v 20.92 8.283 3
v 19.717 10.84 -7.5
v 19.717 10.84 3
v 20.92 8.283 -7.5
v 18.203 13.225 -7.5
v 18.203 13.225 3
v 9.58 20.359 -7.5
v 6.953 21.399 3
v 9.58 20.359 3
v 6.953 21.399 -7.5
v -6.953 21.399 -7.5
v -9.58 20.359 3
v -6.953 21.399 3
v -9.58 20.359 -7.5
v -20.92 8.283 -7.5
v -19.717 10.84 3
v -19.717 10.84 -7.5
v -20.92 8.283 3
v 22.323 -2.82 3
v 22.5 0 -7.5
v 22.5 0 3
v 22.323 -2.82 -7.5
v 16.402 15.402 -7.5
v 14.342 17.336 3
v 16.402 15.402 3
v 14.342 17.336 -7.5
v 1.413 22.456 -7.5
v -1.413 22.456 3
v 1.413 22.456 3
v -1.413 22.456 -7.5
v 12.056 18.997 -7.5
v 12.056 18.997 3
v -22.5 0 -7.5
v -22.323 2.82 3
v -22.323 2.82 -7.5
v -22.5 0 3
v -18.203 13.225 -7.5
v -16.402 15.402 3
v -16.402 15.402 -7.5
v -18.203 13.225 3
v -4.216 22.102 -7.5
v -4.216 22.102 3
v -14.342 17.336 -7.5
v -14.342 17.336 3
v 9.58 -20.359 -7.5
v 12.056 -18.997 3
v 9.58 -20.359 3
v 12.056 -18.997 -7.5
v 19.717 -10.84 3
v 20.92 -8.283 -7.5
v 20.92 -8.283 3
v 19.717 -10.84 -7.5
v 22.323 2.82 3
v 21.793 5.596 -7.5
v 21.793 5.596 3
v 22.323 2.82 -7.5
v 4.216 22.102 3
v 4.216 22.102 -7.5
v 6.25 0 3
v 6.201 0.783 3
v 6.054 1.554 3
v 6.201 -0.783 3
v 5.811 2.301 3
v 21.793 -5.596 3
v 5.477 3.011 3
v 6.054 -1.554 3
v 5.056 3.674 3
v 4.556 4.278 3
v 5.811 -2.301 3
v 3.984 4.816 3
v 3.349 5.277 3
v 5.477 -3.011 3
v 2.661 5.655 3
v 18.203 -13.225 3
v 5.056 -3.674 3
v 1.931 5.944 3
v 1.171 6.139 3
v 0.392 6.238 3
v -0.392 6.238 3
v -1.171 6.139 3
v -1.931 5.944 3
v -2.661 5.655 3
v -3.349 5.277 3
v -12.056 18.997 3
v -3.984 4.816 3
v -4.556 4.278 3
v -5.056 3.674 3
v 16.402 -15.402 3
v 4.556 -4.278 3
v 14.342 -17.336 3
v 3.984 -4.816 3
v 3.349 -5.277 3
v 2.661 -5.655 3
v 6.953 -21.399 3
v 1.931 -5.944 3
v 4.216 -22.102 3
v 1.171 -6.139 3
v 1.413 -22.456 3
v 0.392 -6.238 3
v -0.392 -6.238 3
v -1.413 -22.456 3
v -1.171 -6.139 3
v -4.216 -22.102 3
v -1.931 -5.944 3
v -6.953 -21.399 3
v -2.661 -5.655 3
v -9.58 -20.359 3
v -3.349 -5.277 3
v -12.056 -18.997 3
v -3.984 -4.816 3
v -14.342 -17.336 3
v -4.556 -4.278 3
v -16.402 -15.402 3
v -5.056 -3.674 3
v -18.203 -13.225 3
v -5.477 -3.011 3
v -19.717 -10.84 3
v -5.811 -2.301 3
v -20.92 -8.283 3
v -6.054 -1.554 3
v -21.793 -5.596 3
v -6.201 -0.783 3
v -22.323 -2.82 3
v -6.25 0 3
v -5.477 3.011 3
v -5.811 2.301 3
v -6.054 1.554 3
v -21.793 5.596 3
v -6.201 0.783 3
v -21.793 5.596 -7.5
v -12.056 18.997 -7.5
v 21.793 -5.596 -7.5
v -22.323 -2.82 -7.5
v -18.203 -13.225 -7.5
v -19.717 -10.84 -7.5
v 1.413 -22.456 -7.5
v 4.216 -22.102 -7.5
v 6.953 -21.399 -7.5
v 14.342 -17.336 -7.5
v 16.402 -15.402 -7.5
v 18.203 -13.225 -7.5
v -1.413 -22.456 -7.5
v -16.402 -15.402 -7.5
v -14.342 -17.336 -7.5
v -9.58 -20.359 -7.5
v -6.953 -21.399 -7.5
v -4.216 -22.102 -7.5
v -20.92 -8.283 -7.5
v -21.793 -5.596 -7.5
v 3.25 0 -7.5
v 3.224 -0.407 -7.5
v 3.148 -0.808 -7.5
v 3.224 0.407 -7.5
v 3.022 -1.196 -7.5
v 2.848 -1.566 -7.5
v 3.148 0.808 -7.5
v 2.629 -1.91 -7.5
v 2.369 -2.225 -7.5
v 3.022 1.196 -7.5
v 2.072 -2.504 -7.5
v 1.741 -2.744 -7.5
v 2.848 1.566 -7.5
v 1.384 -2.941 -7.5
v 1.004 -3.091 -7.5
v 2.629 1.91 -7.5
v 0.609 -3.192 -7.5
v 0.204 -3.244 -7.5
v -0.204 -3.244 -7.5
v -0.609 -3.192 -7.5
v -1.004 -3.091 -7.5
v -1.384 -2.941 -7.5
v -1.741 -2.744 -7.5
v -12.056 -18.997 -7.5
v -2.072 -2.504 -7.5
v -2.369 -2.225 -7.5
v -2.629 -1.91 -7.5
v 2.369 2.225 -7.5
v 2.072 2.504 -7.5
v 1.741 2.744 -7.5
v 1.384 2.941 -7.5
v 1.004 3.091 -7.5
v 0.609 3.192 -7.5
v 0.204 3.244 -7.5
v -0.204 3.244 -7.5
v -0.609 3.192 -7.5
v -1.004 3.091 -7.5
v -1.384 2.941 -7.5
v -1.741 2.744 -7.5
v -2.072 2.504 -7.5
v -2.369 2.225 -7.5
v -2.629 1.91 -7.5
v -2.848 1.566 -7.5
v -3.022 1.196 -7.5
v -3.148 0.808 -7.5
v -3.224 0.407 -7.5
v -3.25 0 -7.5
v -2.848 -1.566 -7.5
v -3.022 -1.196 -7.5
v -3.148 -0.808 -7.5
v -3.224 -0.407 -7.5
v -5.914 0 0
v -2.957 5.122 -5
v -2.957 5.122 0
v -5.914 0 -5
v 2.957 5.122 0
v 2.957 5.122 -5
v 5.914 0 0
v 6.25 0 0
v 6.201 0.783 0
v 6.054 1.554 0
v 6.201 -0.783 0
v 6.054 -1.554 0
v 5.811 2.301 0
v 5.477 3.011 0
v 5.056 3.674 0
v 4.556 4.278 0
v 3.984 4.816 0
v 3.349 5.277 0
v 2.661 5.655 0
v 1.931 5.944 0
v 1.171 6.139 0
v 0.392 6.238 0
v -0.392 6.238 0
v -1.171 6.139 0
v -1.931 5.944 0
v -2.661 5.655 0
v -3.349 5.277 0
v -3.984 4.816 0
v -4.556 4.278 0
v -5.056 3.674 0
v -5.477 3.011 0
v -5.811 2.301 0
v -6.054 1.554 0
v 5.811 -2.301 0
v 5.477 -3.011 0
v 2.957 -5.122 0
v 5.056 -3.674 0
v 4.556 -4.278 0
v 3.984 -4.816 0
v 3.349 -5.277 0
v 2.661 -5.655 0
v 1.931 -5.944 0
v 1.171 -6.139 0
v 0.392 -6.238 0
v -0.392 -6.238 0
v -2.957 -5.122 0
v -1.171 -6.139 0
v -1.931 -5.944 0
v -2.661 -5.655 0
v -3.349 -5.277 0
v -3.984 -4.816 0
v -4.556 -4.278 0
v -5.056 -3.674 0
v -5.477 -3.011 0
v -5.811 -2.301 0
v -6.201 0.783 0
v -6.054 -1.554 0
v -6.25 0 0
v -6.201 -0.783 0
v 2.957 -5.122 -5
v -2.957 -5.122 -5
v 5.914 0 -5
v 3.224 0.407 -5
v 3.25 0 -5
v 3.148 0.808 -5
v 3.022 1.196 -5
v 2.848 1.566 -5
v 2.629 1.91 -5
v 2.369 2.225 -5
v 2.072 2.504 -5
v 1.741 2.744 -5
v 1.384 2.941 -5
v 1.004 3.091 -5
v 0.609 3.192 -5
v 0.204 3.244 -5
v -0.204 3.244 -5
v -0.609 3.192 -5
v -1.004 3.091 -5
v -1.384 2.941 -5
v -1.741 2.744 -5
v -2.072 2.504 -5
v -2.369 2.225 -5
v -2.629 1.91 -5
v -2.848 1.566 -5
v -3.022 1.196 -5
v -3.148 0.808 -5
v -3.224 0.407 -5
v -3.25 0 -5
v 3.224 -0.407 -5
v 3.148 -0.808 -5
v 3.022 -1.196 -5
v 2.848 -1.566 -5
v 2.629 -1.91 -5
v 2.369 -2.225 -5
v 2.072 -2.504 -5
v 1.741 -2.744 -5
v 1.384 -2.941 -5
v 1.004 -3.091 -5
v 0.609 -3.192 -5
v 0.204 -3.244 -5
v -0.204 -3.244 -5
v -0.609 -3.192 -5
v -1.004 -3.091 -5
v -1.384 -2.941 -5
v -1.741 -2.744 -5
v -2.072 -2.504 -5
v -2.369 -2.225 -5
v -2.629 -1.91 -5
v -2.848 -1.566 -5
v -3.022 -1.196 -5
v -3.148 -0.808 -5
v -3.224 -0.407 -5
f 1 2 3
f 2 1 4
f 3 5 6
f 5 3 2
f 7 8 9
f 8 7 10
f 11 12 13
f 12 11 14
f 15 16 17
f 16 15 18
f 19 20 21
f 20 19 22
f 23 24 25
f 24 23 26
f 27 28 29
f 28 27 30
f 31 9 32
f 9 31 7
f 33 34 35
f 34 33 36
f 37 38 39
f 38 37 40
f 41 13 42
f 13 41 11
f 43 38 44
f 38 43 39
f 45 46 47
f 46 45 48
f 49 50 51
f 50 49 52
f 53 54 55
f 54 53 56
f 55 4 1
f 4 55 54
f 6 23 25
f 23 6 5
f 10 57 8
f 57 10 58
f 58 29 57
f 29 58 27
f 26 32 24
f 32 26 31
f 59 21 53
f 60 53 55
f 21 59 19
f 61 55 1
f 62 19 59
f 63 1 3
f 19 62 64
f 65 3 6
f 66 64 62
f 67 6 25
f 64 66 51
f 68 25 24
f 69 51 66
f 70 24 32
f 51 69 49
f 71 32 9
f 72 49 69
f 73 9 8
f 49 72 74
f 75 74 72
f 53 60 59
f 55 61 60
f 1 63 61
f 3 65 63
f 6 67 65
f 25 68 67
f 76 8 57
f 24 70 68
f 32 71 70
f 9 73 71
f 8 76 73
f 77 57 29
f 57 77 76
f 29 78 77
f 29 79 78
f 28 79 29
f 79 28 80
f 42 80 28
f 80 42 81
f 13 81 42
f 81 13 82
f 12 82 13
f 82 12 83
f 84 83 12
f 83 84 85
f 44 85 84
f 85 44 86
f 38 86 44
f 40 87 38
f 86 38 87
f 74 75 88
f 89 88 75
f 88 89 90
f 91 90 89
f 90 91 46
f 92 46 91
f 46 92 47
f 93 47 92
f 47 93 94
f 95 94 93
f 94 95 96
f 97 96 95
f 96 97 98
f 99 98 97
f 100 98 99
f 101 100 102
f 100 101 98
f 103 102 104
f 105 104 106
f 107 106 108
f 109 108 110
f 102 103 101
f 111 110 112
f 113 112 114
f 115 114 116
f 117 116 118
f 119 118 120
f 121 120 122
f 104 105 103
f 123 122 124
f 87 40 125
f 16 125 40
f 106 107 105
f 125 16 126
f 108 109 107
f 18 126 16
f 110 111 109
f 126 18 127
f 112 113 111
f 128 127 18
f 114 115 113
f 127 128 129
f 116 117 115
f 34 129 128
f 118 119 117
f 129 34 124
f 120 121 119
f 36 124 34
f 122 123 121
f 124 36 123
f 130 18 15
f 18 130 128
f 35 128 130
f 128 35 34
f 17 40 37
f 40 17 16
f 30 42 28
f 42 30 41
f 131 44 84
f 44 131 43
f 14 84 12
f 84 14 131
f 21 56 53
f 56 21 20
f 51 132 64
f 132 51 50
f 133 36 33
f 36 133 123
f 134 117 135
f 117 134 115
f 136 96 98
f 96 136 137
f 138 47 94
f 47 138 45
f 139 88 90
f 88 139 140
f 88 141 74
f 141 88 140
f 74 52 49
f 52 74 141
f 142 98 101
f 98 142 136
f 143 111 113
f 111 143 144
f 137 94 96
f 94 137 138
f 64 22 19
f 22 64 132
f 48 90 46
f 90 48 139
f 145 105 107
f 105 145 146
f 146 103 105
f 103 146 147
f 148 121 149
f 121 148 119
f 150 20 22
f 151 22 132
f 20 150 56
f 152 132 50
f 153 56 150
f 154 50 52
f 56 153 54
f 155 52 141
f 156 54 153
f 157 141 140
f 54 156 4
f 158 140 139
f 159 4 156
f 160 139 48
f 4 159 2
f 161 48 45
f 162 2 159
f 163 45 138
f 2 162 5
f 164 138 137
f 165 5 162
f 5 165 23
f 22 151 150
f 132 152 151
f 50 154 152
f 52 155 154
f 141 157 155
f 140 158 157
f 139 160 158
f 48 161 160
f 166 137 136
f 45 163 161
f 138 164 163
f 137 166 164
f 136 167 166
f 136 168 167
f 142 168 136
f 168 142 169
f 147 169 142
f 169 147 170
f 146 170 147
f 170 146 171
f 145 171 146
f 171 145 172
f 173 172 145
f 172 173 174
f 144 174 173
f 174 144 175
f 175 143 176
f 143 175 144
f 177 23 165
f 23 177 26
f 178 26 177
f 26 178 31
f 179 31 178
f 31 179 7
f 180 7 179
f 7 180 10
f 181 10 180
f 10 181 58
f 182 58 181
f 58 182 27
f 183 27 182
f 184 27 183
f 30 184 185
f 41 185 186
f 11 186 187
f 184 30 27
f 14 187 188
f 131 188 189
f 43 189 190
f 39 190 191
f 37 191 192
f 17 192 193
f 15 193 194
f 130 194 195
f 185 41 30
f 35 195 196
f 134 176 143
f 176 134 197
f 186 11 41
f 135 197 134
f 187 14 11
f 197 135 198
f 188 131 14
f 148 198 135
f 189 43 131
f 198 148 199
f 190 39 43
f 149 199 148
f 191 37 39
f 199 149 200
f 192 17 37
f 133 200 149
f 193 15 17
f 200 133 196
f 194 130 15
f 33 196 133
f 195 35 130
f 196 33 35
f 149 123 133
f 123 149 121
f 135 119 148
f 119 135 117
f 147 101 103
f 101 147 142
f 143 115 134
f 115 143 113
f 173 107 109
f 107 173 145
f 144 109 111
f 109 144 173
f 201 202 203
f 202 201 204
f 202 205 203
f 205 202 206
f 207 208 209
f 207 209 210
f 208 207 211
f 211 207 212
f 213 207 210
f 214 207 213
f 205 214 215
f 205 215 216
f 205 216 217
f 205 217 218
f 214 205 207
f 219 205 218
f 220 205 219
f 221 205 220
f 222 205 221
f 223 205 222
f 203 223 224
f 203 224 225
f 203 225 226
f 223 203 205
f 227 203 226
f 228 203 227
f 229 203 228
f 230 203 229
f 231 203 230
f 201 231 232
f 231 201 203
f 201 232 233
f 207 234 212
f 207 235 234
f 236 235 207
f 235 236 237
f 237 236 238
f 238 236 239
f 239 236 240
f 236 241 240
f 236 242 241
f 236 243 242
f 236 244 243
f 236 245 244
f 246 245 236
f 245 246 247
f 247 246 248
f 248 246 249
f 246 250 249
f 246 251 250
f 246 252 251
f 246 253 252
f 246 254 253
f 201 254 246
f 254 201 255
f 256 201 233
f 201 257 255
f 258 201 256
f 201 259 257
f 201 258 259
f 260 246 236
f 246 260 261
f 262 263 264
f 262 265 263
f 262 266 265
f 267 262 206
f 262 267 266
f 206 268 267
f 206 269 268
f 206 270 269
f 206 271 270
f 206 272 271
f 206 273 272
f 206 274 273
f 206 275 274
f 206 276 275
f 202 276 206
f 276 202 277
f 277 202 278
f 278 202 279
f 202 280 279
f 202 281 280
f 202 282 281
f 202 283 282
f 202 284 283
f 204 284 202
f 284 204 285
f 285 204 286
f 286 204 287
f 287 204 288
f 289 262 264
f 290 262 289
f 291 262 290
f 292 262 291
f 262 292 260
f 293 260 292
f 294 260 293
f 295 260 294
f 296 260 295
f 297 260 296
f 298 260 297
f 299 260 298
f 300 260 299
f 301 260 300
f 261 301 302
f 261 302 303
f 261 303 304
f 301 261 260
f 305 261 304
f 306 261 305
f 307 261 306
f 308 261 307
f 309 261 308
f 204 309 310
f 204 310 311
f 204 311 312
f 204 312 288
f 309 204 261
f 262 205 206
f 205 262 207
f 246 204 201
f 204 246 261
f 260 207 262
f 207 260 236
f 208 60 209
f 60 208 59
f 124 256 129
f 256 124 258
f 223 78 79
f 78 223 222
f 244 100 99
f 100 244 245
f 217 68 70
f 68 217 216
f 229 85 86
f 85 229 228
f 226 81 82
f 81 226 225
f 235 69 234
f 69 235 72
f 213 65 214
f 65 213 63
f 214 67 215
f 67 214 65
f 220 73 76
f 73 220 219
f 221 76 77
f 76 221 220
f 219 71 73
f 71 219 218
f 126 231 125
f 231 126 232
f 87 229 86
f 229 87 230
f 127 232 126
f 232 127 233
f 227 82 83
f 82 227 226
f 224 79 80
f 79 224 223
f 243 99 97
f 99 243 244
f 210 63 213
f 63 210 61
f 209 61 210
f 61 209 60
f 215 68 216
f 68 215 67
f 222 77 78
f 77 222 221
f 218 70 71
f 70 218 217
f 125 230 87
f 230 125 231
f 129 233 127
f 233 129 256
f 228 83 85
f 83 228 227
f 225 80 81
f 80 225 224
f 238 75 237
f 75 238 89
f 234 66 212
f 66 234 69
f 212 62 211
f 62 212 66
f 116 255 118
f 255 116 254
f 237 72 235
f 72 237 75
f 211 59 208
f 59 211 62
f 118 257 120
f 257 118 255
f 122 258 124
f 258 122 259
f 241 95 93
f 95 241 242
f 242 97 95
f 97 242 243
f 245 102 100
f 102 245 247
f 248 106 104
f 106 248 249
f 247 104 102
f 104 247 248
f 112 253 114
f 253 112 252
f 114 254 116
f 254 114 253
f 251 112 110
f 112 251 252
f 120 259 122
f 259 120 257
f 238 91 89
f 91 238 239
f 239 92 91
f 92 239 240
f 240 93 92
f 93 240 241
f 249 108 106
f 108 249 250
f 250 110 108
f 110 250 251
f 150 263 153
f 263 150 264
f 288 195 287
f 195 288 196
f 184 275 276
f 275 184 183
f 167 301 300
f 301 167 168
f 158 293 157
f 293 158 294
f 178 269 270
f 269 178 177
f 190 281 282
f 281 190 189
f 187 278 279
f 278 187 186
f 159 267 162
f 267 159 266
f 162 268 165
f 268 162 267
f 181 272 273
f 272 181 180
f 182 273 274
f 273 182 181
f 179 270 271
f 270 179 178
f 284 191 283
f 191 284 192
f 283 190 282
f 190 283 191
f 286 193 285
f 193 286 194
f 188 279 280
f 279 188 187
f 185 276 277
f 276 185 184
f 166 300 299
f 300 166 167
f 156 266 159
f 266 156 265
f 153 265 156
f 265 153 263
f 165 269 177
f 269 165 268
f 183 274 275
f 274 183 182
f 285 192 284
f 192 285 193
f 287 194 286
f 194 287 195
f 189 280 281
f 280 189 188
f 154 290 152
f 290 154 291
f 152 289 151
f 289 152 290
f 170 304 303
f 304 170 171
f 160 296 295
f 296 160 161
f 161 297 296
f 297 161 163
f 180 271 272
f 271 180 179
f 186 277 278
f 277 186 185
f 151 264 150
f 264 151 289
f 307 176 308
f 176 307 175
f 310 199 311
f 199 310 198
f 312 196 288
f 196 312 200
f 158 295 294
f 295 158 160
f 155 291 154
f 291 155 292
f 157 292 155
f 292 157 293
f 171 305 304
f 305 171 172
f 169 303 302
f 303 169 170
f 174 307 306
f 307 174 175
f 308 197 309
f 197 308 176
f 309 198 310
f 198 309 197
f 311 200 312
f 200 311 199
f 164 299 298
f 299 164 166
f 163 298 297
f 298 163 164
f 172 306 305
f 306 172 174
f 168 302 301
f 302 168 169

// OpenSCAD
$fn = 50;


difference() {
	union() {
		translate(v = [0, 0, -7.5000000000]) {
			cylinder(h = 10.5000000000, r = 22.5000000000);
		}
		#translate(v = [0, 0, -9.0000000000]) {
			cylinder(h = 9, r = 2.8750000000);
		}
	}
	union() {
		translate(v = [0, 0, 0]) {
			rotate(a = [0, 0, 0]) {
				difference() {
					union() {
						translate(v = [0, 0, -5]) {
							linear_extrude(height = 5) {
								polygon(points = [[5.9142500000, 0.0000000000], [2.9571250000, 5.1218907443], [-2.9571250000, 5.1218907443], [-5.9142500000, 0.0000000000], [-2.9571250000, -5.1218907443], [2.9571250000, -5.1218907443]]);
							}
						}
					}
					union();
				}
			}
		}
		#cylinder(h = 3, r = 6.2500000000);
		#translate(v = [0, 0, -100.0000000000]) {
			cylinder(h = 200, r = 3.2500000000);
		}
	}
}
